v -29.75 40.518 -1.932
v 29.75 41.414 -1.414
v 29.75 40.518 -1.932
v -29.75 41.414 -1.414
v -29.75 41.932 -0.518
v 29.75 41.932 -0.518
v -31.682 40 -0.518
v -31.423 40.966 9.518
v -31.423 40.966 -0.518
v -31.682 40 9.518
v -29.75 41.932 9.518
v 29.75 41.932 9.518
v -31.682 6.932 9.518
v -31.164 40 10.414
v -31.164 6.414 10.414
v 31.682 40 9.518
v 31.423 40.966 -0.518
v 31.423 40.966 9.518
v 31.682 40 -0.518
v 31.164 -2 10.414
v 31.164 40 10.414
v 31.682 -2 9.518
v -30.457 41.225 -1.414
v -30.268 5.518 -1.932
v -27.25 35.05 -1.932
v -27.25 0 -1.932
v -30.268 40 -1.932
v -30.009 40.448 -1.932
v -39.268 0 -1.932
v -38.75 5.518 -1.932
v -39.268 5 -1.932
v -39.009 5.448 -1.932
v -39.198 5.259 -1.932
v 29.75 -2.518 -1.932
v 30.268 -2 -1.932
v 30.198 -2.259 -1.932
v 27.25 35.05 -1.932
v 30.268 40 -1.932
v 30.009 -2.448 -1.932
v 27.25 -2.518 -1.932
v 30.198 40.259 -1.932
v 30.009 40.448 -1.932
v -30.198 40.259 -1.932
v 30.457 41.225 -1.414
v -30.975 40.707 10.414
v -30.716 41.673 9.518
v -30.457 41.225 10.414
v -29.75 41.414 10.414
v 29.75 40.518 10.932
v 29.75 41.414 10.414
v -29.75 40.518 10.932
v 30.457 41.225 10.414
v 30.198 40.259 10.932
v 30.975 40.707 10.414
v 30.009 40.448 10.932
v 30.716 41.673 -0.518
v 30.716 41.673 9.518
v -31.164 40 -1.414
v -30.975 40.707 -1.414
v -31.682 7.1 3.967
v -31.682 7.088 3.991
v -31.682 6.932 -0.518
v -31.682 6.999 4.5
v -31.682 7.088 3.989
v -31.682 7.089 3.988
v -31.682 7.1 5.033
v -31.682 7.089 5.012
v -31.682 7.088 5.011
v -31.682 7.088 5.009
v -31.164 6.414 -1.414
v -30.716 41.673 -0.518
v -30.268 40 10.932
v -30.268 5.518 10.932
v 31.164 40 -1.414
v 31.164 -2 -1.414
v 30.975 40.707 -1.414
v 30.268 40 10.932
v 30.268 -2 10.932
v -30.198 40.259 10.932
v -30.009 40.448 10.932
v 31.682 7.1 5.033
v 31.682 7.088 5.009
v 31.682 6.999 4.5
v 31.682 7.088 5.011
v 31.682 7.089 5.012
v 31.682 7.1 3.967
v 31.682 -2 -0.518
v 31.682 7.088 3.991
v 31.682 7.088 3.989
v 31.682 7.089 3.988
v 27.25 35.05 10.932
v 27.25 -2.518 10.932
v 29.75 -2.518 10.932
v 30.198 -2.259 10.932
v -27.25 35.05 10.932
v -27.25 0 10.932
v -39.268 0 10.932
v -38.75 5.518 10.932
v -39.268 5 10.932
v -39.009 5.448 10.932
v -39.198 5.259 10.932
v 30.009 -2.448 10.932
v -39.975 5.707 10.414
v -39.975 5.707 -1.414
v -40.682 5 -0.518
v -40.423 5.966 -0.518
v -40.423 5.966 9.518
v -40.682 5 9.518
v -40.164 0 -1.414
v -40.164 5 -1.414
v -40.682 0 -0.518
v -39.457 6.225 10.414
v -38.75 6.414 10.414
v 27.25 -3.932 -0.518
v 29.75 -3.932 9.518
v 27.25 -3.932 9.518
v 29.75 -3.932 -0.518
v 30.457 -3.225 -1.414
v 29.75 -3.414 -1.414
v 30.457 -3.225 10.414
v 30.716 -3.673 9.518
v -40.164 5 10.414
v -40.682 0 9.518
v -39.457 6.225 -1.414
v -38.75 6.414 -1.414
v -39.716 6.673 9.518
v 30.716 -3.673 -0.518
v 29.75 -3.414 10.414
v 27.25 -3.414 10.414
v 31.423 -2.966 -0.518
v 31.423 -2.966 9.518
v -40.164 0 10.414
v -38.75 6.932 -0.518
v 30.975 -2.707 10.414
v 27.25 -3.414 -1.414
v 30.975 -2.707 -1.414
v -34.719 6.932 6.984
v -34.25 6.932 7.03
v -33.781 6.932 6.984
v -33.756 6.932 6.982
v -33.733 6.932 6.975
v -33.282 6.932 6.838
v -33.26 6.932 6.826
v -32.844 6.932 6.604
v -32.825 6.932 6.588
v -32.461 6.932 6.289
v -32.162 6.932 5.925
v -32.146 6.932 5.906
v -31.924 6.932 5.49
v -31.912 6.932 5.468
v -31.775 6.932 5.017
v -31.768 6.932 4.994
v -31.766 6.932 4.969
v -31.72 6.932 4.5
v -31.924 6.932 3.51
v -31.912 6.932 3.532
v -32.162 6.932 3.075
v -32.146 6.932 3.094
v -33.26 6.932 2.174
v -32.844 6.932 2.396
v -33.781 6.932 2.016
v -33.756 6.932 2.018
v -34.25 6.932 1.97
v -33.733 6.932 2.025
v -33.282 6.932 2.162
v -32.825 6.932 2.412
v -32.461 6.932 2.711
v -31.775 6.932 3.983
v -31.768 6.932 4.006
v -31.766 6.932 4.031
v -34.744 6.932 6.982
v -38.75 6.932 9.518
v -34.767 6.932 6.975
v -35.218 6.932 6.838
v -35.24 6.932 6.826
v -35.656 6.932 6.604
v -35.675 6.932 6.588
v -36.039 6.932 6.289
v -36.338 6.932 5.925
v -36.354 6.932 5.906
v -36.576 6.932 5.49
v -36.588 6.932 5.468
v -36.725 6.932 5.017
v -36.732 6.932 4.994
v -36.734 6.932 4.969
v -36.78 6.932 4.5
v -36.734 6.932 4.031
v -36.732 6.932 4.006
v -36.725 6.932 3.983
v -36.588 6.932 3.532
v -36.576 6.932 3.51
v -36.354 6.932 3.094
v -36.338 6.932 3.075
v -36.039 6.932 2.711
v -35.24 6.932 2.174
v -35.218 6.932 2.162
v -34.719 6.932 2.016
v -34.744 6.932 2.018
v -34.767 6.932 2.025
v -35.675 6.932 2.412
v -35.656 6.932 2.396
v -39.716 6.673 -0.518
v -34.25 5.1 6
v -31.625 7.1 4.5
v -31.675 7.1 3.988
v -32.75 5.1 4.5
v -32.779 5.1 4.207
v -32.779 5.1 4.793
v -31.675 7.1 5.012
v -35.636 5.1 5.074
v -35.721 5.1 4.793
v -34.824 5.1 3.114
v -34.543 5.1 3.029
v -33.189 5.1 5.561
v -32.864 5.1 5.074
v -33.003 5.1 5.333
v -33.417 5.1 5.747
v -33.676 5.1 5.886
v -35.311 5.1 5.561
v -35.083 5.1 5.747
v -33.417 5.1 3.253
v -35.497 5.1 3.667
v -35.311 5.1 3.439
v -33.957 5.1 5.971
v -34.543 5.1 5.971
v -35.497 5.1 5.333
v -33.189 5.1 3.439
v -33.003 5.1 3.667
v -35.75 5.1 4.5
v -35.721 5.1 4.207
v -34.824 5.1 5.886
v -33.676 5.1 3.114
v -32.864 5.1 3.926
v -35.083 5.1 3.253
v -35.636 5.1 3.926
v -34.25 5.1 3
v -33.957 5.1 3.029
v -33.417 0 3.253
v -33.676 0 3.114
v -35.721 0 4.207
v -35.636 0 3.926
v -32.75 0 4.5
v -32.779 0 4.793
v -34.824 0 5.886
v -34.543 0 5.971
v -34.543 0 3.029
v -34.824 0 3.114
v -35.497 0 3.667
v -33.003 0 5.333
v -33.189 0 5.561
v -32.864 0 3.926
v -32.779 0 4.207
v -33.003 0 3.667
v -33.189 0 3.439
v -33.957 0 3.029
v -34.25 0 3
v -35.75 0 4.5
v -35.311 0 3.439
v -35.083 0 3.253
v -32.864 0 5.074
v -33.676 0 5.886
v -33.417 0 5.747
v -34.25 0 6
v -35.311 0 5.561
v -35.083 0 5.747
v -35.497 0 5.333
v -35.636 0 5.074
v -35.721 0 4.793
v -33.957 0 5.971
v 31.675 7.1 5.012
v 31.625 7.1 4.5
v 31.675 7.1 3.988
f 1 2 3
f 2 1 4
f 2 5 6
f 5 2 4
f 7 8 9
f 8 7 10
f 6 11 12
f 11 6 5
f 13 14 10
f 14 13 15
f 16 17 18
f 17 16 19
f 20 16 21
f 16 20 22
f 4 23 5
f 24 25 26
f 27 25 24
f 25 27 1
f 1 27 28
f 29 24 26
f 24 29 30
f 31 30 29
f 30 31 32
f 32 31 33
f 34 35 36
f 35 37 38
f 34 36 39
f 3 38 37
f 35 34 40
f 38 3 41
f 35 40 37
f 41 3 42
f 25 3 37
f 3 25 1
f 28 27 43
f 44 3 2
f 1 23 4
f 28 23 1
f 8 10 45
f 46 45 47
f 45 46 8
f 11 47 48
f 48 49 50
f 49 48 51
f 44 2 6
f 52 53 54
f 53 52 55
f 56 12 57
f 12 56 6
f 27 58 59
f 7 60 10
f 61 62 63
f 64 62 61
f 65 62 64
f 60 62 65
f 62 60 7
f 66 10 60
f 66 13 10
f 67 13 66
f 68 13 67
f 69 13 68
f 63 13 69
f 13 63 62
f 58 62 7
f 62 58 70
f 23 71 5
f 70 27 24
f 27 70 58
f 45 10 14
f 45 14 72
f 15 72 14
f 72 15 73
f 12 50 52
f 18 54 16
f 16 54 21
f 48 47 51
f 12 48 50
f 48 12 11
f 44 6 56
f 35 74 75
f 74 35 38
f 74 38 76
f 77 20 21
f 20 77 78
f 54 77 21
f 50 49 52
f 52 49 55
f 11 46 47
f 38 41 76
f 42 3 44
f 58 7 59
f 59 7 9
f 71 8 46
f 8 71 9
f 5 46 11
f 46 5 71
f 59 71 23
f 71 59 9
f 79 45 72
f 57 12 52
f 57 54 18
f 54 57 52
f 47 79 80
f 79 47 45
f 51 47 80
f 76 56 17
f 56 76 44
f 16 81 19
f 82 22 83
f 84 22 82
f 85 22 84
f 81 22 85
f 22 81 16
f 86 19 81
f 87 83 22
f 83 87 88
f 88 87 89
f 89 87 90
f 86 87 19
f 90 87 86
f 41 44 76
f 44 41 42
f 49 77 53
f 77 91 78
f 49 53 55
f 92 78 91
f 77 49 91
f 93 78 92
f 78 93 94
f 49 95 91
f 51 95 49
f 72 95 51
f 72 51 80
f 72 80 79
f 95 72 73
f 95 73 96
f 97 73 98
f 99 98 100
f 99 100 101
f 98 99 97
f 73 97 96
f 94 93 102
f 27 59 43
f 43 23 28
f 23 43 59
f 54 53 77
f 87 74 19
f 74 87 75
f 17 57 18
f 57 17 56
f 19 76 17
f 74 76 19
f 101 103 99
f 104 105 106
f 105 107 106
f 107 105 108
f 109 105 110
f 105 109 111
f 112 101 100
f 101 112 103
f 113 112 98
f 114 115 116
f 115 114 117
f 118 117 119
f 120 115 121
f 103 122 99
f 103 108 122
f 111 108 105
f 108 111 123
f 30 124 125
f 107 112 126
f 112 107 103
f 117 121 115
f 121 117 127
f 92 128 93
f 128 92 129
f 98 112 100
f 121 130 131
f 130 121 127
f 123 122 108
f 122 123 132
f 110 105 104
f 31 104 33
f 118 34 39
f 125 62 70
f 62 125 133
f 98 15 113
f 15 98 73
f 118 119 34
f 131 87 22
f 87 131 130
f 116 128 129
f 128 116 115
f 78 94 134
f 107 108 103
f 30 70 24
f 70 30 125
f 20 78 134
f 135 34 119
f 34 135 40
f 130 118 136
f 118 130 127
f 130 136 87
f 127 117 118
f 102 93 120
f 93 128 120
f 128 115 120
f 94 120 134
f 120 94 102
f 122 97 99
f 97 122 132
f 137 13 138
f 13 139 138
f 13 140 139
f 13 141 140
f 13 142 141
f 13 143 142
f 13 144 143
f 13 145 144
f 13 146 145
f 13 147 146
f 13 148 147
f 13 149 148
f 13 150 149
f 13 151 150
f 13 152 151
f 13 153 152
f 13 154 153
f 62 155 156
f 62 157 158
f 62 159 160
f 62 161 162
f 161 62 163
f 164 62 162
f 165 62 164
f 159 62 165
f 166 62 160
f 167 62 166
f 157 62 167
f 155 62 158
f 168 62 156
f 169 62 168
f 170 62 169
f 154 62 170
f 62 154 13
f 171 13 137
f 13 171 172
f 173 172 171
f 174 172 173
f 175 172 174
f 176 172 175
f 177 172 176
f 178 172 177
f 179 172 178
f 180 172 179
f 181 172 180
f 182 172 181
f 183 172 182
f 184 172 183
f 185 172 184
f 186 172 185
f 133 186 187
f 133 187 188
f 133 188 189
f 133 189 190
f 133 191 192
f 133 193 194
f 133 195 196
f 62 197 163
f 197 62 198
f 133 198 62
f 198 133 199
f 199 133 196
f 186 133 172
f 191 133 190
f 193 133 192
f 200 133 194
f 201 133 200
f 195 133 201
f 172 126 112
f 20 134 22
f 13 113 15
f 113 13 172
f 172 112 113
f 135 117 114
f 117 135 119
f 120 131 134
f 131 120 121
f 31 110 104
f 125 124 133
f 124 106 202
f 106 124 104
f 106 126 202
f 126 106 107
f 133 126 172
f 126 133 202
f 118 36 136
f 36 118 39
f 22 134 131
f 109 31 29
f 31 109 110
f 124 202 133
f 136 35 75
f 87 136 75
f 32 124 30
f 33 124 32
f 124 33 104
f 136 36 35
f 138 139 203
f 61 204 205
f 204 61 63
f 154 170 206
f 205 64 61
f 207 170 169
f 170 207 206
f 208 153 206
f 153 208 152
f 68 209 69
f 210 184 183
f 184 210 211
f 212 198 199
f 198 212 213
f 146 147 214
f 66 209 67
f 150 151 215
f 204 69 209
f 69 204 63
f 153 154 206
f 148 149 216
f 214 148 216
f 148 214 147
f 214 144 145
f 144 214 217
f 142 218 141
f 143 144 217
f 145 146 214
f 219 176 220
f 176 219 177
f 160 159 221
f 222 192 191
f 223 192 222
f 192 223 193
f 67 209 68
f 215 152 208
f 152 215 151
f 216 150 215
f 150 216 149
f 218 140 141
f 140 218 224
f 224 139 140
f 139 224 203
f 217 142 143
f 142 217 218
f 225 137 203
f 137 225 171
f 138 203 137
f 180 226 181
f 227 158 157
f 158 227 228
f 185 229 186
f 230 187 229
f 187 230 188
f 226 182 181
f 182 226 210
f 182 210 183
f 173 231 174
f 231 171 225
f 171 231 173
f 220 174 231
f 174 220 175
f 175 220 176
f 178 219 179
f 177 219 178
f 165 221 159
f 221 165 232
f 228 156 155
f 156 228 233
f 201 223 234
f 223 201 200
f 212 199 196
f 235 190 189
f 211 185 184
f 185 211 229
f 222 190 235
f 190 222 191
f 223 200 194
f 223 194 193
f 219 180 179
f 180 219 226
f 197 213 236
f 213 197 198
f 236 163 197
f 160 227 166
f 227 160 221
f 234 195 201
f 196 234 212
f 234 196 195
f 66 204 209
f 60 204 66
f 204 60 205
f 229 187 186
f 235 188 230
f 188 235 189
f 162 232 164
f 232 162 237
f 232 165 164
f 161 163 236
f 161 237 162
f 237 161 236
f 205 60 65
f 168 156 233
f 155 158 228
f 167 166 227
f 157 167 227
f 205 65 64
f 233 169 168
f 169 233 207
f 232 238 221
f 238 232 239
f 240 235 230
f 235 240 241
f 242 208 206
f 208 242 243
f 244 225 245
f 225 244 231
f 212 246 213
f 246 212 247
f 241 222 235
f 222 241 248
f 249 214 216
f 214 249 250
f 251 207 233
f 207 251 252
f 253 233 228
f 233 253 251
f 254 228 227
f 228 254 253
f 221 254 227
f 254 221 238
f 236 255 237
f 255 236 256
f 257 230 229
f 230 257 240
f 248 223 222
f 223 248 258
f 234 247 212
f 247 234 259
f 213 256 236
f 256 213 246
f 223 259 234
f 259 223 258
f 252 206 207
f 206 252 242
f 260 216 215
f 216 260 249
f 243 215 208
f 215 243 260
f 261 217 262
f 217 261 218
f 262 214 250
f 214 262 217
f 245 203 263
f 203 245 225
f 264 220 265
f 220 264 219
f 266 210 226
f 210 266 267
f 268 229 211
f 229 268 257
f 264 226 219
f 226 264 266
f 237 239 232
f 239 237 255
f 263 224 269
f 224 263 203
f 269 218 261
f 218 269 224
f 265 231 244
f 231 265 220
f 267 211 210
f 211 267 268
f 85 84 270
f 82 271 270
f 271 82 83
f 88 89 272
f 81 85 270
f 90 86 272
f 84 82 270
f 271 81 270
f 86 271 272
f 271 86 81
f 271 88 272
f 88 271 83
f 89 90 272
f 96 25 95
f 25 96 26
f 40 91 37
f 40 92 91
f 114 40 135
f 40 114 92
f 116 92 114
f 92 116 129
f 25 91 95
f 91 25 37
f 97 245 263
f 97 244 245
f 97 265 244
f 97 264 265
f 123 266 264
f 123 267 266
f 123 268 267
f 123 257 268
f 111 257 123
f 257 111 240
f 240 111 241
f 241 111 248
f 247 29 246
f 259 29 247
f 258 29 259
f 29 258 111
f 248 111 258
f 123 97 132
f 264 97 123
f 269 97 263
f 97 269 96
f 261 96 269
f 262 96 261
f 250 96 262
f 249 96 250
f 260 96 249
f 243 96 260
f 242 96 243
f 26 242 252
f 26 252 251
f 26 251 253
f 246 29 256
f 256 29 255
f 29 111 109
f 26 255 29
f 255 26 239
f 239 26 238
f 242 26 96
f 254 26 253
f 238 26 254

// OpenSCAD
width = 56-1.5;
height = 35;

thickness = 9;

stripclamp();

module stripclamp(){
    minrad = 2;
    difference(){
        minkowski(){
            union(){
                //base
                translate([-(width+thickness*3-minrad*2)/2,-minrad,0]) cube([width+thickness*2-minrad*2, thickness-minrad*2+minrad, thickness]);
            
                //around the strip
                translate([-(width+thickness-minrad*2)/2,0,0]) cube([width+thickness-minrad*2, height+thickness-minrad*2, thickness]);
            }
            
            sphere(r=minrad, $fn=12);
        }
        
        //hollow out the strip
        translate([0,height/2,0]) cube([width, height+.1, thickness*4], center=true);
        
        //flatten the base
        translate([-(100-width)/2,-50,0]) cube([100,100,100], center=true);
        
        //and add some screwholes
        for(i=[-1,1]) translate([i*(width+thickness*2-minrad*2)/2, thickness-minrad, thickness/2]) rotate([-90,0,0]) screw_hole();
    }
}



module screw_hole(){
    $fn=32;
    cap_rad = 5.25/2;
    rad = 3/2;
    cap_height = 2;
    
    translate([0,0,-cap_height+.1])
    cylinder(r1=rad, r2=cap_rad, h=cap_height);
    cylinder(r=rad, h=30, center=true);
}
